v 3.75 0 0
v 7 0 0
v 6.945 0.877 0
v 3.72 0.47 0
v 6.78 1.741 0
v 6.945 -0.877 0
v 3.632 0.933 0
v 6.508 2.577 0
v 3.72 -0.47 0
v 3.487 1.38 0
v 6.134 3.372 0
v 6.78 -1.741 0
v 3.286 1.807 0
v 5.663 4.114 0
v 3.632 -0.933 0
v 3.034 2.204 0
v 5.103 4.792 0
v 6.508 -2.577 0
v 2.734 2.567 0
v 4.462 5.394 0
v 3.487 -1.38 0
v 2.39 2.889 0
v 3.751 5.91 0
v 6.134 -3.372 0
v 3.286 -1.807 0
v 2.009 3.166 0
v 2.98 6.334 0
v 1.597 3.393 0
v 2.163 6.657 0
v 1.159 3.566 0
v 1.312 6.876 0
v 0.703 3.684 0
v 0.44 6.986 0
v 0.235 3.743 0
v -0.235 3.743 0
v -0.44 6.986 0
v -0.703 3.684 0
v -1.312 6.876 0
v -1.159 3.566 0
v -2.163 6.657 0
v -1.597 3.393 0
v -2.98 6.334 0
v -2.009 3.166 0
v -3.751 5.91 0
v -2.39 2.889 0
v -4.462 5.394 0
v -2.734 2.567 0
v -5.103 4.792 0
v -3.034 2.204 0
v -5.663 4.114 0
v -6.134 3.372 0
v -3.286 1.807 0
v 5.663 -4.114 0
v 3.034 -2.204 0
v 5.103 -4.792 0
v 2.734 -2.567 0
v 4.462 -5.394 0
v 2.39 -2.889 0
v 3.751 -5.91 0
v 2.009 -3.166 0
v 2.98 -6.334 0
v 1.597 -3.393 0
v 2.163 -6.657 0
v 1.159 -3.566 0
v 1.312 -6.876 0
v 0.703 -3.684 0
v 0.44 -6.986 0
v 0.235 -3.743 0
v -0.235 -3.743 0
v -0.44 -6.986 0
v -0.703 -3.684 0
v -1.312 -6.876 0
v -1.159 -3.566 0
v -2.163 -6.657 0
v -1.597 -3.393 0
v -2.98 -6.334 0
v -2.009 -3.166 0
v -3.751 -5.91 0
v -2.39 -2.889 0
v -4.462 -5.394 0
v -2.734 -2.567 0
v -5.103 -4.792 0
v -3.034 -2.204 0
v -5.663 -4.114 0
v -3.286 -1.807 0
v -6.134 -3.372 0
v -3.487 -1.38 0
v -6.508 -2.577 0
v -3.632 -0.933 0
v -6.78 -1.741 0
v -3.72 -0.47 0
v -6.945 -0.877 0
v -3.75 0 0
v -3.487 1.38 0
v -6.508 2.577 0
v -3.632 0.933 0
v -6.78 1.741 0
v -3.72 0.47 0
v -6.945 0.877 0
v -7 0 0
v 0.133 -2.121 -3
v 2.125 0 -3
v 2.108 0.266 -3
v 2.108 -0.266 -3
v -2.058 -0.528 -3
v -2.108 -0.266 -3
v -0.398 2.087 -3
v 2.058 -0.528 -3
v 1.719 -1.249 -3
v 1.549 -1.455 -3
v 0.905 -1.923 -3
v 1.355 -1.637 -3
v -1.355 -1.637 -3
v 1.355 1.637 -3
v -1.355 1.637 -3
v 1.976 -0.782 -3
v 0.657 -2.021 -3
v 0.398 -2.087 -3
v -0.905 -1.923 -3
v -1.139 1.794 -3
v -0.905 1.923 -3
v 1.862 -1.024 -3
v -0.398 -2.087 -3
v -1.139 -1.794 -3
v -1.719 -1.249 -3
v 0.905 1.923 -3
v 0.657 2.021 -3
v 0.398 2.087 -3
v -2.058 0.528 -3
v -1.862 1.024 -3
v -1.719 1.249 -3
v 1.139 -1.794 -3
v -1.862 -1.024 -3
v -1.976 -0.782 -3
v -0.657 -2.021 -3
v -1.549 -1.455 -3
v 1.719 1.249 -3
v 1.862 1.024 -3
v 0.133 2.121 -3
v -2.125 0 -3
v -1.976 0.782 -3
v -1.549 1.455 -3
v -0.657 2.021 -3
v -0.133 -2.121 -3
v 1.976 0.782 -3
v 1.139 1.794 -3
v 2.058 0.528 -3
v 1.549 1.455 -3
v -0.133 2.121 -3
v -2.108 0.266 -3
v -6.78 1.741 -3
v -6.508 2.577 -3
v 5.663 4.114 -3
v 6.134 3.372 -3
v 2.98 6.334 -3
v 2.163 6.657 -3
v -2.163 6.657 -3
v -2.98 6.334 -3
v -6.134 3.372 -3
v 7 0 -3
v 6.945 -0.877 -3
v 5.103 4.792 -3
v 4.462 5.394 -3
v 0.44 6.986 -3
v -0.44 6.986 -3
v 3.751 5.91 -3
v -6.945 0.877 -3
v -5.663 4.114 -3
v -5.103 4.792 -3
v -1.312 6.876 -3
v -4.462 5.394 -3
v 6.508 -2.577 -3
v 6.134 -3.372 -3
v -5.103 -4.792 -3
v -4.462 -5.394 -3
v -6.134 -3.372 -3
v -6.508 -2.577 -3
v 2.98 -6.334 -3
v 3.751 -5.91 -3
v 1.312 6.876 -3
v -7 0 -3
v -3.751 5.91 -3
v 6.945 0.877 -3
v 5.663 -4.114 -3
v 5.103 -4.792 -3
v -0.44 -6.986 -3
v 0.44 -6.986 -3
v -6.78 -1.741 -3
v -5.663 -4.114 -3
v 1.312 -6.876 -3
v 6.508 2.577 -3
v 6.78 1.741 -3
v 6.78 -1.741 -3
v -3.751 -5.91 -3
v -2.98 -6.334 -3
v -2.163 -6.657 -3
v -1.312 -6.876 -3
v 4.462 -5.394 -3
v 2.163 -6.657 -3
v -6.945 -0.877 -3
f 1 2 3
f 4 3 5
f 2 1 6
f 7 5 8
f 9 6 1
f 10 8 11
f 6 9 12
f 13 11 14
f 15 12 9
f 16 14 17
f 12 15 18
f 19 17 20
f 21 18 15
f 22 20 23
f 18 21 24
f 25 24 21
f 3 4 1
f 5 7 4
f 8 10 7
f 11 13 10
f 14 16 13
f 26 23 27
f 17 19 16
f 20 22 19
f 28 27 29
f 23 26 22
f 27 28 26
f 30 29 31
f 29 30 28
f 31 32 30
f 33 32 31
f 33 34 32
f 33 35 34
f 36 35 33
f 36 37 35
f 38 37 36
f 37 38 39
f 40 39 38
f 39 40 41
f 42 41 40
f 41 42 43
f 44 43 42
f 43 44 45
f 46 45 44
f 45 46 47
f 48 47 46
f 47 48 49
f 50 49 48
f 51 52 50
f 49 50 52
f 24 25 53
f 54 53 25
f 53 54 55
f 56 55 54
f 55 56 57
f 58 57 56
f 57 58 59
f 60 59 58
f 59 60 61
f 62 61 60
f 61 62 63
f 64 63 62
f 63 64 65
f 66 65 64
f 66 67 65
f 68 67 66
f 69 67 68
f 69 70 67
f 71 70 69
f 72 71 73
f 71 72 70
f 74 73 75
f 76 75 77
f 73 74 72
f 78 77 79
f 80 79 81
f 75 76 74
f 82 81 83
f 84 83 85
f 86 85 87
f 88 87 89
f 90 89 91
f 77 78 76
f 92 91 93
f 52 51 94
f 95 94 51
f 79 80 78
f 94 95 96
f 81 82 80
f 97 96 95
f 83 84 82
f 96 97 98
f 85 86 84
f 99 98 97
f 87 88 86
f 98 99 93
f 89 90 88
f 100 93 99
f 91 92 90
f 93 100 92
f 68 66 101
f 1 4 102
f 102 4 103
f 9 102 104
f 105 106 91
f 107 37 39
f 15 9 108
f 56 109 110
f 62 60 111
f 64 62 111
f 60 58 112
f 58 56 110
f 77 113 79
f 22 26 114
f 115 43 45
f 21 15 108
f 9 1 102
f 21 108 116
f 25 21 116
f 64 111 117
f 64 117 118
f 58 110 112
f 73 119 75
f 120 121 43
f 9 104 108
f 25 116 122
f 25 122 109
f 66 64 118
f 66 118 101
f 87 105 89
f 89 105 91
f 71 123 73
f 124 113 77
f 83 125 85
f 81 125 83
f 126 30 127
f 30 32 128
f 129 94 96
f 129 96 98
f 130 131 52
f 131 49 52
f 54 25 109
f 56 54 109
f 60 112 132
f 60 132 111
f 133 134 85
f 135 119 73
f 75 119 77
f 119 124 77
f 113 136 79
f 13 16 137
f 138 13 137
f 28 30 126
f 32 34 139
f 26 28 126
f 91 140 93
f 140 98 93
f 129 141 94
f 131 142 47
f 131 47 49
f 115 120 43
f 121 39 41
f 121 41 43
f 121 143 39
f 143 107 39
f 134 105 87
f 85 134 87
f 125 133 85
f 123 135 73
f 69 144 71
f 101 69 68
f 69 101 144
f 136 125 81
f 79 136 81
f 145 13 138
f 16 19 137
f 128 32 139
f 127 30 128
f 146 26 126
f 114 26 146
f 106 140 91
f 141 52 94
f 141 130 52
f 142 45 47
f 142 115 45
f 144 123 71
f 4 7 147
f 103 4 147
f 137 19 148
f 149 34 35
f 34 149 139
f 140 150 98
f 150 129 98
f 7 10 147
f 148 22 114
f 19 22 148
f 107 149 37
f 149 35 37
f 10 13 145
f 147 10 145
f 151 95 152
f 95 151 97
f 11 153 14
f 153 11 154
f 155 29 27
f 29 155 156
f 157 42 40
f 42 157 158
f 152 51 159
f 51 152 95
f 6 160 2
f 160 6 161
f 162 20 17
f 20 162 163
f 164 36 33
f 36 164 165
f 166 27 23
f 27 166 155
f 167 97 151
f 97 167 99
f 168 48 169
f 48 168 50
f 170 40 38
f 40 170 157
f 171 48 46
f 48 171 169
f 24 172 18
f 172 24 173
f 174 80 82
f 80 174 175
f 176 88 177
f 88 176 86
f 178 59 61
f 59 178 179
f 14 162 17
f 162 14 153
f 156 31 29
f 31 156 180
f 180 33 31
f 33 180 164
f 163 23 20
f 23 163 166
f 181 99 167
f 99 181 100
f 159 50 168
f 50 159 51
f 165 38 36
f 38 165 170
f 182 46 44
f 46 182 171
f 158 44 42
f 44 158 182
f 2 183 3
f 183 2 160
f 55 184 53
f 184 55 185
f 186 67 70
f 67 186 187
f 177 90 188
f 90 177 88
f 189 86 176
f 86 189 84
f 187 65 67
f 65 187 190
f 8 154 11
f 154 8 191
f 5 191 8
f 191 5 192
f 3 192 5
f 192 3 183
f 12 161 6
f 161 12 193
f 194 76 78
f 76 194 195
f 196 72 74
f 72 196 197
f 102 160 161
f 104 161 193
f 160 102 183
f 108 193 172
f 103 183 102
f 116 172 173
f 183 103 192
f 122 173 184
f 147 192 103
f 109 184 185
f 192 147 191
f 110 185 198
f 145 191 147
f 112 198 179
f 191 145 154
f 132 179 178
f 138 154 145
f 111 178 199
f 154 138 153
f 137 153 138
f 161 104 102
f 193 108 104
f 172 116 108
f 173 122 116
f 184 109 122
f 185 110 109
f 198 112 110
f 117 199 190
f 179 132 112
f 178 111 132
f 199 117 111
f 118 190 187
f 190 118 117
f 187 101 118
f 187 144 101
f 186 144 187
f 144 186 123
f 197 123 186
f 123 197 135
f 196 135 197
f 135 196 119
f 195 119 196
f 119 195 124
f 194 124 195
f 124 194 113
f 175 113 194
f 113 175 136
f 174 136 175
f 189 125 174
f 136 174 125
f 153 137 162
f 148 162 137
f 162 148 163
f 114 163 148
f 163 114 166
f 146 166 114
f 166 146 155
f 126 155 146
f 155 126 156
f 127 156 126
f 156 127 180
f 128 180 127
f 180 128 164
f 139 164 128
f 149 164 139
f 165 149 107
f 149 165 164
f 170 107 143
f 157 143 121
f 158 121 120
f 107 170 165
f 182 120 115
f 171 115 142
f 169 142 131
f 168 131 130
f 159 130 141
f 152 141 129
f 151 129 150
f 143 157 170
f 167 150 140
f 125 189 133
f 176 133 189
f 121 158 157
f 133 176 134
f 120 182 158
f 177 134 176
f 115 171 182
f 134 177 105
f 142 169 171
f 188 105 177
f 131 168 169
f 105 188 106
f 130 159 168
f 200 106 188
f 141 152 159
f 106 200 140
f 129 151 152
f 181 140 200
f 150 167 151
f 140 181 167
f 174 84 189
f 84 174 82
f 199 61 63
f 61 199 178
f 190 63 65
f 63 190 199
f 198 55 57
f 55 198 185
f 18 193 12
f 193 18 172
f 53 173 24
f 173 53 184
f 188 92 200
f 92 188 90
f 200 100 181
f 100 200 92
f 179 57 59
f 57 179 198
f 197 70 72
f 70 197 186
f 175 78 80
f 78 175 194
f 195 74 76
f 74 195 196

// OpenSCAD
$fn = 50;

difference() {
	union() {
		translate(v = [0, 0, -3.0]) {
			cylinder(h = 3, r = 7.0);
		}
	}
	union() {
		translate(v = [0, 0, 0]) {
			rotate(a = [0, 0, 0]) {
				difference() {
					union() {
						translate(v = [0, 0, -6.0]) {
							cylinder(h = 6, r = 2.0);
						}
						translate(v = [0, 0, -3]) {
							cylinder(h = 3, r1 = 2.125, r2 = 3.75);
						}
						translate(v = [0, 0, -6.0]) {
							cylinder(h = 6, r = 2.125);
						}
						translate(v = [0, 0, -6.0]) {
							cylinder(h = 6, r = 2.0);
						}
					}
					union();
				}
			}
		}
	}
}
